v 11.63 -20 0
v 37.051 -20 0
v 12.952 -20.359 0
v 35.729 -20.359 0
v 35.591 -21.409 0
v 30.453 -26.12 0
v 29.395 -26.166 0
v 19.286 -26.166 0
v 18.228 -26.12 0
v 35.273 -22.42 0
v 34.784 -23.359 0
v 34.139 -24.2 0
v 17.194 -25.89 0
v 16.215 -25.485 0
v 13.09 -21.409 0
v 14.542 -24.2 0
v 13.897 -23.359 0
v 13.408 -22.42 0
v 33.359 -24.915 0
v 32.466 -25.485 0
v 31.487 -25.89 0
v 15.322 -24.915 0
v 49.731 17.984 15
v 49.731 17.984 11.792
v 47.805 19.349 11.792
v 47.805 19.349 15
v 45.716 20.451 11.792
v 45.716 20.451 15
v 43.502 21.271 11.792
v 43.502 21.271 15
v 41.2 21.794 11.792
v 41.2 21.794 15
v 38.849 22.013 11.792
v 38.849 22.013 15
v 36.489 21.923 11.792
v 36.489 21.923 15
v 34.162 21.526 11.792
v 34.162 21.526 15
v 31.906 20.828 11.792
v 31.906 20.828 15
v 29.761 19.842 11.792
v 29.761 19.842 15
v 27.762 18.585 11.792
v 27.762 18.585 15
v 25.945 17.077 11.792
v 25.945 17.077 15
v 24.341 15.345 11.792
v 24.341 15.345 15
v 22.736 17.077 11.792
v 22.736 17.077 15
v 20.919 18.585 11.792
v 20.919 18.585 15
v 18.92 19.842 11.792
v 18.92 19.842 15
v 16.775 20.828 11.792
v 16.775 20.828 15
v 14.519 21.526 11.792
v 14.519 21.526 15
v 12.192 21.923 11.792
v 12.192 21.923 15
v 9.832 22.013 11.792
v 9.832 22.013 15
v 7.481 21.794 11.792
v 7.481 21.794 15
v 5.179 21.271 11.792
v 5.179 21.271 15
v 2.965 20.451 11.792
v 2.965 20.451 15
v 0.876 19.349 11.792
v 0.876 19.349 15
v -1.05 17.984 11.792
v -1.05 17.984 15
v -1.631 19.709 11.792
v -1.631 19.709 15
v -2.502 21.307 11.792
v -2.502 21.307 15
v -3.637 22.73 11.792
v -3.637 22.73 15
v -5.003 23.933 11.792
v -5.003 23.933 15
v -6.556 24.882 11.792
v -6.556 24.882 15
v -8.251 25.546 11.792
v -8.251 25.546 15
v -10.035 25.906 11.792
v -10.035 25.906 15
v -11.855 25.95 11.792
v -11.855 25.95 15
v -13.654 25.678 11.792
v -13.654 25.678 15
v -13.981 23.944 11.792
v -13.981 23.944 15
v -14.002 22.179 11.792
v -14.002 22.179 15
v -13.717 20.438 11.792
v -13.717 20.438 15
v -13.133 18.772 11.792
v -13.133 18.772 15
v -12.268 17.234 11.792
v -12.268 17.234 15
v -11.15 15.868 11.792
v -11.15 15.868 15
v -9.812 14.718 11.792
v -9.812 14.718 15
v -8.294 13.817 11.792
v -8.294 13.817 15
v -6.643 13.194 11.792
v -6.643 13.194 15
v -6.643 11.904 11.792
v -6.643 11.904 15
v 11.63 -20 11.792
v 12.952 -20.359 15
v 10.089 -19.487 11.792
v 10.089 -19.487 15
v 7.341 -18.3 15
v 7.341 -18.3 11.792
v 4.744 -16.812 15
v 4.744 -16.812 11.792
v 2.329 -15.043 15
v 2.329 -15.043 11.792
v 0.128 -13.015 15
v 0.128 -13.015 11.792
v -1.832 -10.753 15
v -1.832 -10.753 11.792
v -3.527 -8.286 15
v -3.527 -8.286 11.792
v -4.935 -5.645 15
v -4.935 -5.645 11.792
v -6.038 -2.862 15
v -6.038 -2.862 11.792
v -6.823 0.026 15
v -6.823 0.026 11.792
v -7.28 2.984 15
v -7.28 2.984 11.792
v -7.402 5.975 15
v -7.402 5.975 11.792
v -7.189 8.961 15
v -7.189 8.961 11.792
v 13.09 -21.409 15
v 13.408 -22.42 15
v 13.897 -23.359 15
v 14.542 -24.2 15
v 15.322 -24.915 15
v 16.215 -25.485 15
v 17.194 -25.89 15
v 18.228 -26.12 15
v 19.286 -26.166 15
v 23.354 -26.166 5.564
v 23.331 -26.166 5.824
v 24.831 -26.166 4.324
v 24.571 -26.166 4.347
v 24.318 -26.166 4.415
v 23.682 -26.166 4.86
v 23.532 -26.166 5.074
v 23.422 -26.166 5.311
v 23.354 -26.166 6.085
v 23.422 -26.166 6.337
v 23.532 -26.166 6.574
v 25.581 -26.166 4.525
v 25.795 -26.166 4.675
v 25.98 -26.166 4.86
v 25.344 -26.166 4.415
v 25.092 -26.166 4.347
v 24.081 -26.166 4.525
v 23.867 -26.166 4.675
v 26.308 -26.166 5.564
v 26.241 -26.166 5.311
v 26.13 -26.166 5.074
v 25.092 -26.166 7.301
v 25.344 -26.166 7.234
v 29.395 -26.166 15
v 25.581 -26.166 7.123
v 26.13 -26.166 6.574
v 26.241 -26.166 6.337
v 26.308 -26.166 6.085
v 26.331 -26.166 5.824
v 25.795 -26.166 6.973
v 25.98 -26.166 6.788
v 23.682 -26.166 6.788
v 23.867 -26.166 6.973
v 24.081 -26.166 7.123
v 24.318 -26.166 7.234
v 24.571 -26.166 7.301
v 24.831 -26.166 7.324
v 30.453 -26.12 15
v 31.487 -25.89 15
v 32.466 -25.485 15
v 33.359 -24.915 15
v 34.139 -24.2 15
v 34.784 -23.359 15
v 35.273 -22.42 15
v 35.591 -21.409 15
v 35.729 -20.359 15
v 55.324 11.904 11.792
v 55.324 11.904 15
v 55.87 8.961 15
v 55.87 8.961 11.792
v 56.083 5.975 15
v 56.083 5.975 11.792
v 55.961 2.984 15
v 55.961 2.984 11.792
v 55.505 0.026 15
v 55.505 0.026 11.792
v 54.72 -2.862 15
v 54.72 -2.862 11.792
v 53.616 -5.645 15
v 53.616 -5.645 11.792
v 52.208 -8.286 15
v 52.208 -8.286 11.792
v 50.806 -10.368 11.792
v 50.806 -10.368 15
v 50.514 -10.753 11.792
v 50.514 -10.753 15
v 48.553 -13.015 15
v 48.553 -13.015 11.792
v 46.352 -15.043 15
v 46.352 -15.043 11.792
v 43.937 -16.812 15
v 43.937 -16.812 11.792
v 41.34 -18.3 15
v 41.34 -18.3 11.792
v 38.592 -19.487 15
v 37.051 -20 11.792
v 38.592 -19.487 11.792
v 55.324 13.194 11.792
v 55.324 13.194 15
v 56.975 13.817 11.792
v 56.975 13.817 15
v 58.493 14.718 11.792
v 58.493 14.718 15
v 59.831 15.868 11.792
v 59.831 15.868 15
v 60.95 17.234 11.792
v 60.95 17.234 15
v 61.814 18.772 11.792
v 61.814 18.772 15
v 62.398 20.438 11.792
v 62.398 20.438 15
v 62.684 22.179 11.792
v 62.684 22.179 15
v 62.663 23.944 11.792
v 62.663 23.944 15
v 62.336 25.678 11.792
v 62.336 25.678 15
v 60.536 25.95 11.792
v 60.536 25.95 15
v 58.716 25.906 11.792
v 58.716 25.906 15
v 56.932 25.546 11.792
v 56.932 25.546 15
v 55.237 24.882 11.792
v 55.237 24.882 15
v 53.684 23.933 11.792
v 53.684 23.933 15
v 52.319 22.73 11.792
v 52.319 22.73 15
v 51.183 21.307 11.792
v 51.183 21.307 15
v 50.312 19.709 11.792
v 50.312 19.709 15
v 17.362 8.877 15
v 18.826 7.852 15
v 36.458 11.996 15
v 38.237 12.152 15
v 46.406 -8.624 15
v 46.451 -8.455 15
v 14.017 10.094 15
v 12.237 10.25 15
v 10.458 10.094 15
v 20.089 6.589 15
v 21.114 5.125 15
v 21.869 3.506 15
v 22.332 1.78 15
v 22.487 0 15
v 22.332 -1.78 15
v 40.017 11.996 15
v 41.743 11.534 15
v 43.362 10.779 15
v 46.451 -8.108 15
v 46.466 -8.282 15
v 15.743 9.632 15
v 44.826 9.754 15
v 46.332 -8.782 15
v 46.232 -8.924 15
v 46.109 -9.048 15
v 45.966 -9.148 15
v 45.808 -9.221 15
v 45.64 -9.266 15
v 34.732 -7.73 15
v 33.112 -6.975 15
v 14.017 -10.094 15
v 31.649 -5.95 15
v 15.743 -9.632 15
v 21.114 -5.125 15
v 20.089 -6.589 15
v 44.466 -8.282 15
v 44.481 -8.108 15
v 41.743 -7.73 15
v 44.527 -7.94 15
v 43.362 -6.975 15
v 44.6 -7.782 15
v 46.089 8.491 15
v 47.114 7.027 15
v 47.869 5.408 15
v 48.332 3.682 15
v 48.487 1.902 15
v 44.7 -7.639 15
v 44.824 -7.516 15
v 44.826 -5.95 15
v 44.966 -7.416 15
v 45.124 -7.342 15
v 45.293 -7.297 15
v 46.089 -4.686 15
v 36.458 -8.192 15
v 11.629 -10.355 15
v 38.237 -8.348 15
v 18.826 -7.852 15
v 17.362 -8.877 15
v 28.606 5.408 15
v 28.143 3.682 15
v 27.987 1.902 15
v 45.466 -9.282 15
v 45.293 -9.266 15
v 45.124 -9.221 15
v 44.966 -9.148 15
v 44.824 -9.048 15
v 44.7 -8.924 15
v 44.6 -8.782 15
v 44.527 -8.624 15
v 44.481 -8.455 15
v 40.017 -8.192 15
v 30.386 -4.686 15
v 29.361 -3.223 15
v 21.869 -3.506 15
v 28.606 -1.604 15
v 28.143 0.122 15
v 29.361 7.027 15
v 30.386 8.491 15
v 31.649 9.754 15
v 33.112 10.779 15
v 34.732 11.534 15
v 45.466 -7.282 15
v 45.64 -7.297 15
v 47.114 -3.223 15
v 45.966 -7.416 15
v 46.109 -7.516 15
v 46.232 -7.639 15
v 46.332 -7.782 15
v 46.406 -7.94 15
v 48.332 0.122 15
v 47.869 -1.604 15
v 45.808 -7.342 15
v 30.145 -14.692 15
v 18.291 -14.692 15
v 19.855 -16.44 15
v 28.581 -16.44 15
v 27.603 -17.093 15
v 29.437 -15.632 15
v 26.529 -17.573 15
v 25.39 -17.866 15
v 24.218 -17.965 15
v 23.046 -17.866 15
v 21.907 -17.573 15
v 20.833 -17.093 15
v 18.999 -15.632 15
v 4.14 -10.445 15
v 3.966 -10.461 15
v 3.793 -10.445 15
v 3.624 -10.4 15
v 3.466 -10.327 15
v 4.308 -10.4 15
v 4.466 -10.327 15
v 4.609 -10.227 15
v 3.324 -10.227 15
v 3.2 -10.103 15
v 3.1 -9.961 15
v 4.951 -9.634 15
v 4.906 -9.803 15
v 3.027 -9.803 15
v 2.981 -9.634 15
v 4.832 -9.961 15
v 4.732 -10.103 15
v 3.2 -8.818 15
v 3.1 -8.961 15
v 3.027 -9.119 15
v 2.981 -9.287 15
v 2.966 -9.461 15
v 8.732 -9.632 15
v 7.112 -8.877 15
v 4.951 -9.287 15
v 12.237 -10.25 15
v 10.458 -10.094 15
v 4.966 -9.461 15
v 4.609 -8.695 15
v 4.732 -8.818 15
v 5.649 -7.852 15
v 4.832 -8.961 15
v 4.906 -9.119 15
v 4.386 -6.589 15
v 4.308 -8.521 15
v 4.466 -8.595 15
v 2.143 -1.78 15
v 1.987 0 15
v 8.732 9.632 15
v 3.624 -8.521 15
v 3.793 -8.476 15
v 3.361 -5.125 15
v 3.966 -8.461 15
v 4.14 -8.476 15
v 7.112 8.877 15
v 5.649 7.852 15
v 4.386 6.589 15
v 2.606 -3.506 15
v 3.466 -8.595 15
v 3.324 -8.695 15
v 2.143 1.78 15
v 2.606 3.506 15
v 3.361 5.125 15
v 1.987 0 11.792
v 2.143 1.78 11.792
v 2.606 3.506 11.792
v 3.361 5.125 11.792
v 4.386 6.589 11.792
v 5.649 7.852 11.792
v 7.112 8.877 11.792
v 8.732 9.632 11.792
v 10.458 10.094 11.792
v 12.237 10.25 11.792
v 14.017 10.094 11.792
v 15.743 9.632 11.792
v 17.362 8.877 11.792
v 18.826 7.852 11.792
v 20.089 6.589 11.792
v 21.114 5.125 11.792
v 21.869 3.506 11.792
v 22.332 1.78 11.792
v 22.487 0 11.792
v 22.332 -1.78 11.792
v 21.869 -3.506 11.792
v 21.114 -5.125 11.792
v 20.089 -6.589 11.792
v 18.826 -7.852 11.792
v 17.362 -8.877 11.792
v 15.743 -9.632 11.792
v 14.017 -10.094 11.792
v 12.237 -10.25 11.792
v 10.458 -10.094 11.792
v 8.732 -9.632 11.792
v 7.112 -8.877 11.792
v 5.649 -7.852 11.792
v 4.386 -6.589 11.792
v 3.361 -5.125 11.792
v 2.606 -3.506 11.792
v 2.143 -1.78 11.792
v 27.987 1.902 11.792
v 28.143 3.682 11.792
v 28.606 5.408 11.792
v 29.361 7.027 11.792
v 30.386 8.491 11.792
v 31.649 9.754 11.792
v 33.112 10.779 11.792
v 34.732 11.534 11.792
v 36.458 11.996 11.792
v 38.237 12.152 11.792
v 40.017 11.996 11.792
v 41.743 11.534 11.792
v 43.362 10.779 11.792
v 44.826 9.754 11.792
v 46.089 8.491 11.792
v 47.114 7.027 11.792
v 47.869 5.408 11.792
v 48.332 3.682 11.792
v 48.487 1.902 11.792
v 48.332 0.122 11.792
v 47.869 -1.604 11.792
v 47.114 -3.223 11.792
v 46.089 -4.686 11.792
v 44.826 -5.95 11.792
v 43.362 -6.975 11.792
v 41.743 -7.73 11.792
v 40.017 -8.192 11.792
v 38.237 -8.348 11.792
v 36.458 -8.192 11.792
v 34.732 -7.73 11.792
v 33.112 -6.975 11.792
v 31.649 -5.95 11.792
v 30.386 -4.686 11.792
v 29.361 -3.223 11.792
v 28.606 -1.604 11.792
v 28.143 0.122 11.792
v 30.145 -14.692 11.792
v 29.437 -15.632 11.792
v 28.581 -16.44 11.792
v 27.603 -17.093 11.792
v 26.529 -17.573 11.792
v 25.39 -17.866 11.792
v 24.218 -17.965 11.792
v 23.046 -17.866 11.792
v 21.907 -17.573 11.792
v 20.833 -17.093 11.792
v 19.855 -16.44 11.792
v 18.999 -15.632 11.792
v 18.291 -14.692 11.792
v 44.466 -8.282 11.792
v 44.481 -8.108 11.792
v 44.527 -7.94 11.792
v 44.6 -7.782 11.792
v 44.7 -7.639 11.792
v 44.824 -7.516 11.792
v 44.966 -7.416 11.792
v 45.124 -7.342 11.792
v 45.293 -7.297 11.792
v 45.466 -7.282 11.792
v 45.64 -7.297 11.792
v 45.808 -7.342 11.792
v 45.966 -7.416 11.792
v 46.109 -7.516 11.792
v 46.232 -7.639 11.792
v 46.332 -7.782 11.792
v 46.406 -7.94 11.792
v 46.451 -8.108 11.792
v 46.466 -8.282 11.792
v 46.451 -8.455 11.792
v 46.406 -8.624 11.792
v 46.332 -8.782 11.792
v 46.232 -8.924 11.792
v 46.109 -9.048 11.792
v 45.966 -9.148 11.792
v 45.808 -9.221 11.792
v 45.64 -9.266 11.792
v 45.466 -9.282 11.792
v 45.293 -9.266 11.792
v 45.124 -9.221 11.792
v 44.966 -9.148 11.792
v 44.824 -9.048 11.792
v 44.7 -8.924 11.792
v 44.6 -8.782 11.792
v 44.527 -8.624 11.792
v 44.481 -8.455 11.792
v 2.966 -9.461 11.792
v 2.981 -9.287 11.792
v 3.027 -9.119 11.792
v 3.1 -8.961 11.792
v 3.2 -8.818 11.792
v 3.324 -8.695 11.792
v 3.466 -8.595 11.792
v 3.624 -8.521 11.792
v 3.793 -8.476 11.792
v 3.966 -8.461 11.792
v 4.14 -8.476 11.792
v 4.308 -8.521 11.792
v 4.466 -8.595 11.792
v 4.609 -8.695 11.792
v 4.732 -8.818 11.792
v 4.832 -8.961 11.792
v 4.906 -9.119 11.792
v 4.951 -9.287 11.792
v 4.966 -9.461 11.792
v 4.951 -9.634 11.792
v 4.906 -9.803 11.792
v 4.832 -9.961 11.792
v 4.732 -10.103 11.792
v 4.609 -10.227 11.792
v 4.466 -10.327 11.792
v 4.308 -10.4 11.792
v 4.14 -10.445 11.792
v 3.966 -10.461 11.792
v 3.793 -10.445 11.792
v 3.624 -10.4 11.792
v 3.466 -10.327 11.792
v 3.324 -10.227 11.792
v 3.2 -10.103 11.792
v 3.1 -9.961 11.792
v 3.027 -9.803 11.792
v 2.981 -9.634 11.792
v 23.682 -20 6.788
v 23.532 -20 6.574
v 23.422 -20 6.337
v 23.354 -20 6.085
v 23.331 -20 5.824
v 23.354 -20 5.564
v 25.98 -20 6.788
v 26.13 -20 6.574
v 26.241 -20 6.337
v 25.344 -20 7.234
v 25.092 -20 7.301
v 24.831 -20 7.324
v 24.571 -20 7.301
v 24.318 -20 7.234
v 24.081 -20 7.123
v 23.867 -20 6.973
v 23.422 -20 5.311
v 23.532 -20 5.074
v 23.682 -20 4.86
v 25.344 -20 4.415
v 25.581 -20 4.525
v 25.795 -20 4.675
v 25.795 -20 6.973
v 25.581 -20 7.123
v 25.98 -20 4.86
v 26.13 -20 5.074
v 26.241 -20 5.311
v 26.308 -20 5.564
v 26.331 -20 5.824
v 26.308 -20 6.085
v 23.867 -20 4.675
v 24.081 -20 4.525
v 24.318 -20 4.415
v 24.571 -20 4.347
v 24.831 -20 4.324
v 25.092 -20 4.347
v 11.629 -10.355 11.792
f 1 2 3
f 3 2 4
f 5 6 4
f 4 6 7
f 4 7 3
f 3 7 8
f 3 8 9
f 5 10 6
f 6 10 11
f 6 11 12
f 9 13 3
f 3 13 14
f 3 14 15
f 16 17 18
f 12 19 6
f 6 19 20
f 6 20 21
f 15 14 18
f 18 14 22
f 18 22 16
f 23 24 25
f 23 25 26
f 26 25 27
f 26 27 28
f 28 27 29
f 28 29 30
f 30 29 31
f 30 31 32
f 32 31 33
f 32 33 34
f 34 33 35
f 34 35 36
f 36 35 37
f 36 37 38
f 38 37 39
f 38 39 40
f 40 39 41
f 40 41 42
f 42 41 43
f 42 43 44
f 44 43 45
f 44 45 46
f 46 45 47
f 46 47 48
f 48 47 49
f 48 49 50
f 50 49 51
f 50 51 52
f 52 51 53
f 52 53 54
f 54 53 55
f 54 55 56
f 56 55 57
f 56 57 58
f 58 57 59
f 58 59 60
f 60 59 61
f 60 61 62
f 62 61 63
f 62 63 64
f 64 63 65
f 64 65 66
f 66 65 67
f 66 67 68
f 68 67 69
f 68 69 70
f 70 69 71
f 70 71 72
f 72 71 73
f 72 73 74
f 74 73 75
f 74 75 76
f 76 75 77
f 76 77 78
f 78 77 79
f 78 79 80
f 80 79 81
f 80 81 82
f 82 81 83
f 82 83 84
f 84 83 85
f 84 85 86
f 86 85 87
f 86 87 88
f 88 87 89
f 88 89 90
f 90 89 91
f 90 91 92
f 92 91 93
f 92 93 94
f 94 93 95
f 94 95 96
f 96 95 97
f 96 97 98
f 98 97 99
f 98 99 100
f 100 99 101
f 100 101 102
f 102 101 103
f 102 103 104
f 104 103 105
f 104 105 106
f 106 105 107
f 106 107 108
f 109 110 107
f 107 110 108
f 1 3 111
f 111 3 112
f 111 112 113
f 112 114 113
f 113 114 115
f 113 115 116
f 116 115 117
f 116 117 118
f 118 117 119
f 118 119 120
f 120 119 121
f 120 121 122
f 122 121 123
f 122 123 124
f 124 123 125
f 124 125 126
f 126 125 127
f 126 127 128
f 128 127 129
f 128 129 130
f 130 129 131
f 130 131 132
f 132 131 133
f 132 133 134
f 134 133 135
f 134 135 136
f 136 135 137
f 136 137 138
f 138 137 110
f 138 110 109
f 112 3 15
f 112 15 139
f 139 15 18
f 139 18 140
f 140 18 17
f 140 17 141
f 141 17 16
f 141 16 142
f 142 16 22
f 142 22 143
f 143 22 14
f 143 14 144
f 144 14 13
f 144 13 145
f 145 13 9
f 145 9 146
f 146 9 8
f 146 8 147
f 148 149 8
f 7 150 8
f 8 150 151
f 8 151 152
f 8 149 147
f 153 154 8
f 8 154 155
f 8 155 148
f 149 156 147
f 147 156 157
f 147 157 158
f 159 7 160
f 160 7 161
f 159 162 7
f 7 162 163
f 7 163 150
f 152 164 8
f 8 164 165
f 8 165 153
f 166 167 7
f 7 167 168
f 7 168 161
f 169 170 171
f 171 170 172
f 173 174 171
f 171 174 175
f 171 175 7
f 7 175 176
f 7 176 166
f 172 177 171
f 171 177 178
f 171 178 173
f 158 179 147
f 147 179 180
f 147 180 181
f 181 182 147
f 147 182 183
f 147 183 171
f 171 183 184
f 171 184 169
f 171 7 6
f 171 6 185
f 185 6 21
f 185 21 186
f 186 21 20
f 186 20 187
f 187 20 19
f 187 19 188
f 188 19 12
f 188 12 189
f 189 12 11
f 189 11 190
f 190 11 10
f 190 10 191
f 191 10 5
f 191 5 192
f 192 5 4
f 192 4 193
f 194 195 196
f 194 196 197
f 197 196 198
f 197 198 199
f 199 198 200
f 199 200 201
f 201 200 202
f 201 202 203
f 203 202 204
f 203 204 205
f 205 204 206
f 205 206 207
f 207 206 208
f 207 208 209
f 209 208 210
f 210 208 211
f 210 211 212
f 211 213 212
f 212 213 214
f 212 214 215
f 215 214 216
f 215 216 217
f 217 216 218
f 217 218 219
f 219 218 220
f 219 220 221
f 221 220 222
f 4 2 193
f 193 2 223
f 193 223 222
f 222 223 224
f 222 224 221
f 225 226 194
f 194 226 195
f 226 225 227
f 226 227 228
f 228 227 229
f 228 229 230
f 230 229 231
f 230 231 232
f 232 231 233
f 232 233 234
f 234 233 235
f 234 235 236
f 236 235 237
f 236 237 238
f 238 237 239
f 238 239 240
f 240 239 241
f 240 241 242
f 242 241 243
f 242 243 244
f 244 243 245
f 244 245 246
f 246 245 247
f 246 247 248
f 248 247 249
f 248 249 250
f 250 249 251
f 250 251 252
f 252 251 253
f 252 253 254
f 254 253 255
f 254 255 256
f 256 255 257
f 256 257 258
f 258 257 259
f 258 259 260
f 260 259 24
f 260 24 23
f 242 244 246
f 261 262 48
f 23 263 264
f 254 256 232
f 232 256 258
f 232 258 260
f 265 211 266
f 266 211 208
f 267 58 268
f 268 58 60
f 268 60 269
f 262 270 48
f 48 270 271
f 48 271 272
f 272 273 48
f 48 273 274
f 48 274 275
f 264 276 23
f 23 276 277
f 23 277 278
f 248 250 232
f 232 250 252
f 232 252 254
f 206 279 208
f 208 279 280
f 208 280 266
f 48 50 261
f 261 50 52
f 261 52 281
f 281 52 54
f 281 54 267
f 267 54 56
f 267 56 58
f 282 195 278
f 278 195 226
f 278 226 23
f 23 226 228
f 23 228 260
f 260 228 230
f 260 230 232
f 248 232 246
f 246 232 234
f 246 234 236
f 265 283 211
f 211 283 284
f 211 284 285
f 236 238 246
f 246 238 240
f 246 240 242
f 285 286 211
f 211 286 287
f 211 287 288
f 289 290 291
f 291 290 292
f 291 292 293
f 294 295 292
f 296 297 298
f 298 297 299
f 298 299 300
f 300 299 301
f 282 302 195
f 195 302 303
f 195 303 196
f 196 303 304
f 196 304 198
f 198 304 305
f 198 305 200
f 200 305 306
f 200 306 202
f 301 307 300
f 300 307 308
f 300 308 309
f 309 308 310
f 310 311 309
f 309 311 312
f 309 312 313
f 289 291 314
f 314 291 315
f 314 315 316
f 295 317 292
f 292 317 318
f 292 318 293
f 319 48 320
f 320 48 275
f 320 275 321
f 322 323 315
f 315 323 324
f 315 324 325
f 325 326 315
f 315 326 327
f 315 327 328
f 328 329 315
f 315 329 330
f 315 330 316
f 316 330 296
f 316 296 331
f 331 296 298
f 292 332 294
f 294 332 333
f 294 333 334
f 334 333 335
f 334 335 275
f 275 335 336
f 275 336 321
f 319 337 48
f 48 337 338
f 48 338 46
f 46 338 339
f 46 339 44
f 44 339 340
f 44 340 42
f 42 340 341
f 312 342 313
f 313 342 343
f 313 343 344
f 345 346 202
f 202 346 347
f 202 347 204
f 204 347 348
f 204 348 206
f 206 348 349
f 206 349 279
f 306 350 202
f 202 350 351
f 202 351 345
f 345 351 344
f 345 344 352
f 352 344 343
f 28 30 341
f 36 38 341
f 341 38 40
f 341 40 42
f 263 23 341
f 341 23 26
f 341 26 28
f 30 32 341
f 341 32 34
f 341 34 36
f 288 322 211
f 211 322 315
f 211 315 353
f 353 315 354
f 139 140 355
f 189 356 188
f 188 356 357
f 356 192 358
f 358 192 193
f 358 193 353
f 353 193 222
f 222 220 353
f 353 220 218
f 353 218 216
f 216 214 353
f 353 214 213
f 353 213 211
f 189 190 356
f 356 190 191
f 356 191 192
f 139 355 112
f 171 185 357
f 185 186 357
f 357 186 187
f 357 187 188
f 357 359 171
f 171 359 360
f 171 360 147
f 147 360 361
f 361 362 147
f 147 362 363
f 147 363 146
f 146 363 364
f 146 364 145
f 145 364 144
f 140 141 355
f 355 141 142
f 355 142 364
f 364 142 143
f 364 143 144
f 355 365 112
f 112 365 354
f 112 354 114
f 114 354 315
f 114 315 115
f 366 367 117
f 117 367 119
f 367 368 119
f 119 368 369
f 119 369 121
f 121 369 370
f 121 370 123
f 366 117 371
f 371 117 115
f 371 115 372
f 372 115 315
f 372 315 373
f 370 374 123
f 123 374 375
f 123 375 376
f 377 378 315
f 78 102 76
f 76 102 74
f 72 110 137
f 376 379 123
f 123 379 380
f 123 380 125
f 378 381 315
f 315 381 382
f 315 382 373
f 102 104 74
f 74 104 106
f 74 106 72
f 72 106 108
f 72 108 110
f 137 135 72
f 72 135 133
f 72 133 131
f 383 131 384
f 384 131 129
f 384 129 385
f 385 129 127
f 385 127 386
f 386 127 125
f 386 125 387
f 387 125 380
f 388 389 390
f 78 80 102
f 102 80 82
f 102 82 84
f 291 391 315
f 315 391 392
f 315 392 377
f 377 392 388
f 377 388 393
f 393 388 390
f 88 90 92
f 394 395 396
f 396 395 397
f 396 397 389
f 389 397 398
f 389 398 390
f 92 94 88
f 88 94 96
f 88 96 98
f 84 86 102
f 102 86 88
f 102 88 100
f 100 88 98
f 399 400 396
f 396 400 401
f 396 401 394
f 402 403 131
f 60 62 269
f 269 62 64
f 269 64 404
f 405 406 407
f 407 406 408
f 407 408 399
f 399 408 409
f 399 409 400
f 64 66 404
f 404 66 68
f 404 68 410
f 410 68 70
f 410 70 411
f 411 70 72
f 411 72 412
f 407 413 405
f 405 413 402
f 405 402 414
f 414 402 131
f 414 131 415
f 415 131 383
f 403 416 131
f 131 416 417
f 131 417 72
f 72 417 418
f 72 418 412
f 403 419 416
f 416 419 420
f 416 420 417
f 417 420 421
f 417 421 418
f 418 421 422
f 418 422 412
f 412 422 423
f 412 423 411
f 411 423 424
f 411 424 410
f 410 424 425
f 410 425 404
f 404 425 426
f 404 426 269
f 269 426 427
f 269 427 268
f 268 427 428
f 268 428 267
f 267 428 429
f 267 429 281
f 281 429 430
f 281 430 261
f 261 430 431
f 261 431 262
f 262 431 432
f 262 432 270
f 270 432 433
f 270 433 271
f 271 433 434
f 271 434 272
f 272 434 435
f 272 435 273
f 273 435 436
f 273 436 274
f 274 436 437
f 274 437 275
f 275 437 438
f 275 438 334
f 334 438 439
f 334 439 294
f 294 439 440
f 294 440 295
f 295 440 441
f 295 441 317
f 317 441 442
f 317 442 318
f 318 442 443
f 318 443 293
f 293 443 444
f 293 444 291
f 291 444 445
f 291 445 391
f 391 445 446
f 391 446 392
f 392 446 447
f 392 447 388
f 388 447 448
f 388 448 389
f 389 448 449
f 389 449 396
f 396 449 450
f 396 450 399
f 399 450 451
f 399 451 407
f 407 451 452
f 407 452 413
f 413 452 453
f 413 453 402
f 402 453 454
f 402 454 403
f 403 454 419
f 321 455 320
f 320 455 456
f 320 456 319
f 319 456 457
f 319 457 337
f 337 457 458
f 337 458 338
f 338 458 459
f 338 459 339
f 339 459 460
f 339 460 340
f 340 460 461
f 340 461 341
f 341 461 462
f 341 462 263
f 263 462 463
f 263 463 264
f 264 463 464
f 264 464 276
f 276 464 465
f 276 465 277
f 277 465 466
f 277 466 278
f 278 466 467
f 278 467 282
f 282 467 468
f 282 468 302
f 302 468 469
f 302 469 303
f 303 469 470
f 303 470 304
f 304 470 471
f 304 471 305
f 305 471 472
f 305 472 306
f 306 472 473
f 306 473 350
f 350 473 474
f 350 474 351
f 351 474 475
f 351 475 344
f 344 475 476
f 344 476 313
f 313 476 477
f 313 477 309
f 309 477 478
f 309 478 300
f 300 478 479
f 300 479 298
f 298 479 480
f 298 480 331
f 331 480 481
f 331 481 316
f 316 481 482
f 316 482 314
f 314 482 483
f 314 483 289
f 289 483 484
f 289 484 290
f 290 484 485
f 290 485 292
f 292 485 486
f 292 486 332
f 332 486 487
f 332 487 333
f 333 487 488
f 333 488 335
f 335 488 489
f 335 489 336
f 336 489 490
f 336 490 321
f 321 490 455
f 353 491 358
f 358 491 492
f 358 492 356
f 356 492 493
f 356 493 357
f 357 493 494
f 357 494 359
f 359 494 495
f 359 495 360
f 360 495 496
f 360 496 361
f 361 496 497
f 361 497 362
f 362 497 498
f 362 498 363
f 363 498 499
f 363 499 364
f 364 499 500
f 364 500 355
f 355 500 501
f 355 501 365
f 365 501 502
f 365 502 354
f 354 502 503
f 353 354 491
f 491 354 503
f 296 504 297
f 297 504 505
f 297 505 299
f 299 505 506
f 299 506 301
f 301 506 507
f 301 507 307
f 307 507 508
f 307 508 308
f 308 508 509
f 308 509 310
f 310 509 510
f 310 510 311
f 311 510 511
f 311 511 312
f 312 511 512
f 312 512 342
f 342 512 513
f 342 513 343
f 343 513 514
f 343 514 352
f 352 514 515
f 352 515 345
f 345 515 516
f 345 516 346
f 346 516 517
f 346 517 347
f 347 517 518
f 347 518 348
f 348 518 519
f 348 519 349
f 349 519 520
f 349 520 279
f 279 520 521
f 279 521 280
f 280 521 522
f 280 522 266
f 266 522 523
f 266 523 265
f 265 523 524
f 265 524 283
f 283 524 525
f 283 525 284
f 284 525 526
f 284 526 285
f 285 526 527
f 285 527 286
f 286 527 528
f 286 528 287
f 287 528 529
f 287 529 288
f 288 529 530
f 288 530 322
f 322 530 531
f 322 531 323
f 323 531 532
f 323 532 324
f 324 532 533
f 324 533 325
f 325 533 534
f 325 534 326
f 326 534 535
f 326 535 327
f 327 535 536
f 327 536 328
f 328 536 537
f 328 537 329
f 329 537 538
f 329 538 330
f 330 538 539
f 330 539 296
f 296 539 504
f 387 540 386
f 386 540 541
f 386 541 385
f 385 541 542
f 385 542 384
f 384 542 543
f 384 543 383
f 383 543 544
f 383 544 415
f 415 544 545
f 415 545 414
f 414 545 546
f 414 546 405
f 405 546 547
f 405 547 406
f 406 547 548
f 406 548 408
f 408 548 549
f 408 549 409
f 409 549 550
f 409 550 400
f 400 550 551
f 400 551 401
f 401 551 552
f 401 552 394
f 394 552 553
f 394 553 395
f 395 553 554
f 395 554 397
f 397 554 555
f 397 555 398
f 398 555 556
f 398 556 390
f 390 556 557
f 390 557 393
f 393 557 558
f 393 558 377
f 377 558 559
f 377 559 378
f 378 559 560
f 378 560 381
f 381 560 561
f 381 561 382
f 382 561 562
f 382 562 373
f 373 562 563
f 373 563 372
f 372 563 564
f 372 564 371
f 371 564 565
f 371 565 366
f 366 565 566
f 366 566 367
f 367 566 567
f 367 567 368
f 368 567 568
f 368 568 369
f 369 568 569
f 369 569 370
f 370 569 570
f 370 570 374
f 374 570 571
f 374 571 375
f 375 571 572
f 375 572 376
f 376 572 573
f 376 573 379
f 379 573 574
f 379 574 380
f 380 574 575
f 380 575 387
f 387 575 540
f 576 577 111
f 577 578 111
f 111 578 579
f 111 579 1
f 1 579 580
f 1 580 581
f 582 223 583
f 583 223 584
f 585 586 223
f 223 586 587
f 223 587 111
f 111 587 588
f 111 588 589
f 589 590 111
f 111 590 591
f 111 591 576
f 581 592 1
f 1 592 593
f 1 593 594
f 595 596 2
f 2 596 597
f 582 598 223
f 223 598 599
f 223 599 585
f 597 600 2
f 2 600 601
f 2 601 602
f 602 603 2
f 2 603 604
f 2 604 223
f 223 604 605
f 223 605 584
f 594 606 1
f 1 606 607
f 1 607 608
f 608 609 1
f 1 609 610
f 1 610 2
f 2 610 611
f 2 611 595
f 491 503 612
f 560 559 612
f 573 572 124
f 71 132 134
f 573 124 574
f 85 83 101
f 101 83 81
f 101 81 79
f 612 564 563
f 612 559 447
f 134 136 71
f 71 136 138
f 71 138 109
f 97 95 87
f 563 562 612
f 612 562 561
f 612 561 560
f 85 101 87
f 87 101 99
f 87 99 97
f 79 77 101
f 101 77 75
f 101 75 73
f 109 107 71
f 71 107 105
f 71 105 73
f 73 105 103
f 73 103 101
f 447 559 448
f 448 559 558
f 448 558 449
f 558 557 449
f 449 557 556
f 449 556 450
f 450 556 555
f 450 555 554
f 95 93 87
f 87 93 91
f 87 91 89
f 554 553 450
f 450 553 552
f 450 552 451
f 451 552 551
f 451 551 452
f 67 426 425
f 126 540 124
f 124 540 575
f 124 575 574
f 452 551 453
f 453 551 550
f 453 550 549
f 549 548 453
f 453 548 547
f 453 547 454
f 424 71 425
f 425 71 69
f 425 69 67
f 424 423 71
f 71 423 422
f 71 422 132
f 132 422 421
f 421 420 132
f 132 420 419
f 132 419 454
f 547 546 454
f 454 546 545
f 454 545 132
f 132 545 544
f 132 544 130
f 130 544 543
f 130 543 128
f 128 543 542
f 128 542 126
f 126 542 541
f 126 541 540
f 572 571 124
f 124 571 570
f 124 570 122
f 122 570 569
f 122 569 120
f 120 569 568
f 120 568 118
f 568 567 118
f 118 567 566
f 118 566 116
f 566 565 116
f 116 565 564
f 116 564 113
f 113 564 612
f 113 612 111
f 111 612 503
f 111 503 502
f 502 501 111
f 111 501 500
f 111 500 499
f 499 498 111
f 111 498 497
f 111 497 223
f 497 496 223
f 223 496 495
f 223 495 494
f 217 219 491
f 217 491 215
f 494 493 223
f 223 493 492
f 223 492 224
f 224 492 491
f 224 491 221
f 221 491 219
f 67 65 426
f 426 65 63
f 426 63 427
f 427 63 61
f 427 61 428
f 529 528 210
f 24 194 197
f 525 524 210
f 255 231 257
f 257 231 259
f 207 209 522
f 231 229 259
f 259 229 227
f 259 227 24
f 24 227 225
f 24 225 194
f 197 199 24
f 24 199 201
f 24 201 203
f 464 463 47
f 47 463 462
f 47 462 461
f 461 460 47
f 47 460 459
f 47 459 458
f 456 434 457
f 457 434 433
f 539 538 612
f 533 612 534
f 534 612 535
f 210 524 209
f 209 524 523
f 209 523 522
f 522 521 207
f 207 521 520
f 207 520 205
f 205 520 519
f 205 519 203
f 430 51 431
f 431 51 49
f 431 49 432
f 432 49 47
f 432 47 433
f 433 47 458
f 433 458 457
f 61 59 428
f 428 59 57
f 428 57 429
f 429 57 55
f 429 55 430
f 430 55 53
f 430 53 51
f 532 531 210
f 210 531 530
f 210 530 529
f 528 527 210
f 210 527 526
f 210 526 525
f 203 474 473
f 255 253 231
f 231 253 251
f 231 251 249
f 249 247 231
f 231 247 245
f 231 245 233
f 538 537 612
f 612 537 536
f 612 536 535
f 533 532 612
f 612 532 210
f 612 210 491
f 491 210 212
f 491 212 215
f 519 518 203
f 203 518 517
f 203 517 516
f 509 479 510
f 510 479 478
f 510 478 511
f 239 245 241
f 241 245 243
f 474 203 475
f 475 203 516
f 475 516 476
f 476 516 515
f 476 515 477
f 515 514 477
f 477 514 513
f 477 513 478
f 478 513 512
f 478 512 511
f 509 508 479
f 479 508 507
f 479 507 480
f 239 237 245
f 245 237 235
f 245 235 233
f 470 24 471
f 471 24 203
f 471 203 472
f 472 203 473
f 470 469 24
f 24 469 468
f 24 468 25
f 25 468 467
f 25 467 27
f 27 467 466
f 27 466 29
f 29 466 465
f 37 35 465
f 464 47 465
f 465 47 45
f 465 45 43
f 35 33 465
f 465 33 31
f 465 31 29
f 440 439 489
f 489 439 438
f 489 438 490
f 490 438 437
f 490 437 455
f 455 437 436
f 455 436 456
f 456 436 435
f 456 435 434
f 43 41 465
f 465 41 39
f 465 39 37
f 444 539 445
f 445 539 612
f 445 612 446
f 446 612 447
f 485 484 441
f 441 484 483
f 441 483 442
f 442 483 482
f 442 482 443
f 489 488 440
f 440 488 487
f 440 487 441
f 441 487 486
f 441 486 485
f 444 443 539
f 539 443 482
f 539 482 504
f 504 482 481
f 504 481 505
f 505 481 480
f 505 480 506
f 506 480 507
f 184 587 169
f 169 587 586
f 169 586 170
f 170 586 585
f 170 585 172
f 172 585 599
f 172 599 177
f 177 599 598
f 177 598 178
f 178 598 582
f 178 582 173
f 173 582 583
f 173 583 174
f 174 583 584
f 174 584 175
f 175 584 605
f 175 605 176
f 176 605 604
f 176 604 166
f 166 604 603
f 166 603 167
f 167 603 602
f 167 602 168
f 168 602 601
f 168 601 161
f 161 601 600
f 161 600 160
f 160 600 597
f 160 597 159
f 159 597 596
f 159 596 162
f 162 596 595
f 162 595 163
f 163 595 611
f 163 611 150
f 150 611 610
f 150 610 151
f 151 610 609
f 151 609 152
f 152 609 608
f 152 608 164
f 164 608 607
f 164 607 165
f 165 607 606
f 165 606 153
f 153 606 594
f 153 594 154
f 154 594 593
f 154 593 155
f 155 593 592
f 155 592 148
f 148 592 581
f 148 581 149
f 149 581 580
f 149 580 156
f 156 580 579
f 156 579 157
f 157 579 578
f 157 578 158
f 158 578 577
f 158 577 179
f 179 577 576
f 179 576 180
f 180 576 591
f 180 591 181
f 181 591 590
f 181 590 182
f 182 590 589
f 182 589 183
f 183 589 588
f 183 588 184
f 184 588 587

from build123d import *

# Parameters (mm, degrees)
BOSS_EXTRUDE2_DEPTH     = 15
SKETCH4_R               = 10.25
CUT_EXTRUDE1_DEPTH      = 39
SKETCH5_R               = 1
CUT_EXTRUDE2_DEPTH      = 46
CUT_EXTRUDE4_DEPTH      = 30
CUT_EXTRUDE4_DEPTH_BACK = 20
SKETCH8_W               = 87.305200023
SKETCH8_H               = 11.791688203
SKETCH9_R               = 1.5
CUT_EXTRUDE5_DEPTH      = 45


with BuildPart() as part:
    # Sketch2 → Boss-Extrude2 (new body)
    with BuildSketch(Plane.XY):
        with BuildLine():
            Line((29.39514737, -26.166473039), (19.28603361, -26.166473039))
            ThreePointArc((19.28603361, -26.166473039), (14.916401147, -24.5745939), (12.952232935, -20.359168619))
            ThreePointArc((12.952232935, -20.359168619), (-3.527212702, -8.286066454), (-6.642968051, 11.903633717))
            Line((-6.642968051, 11.903633717), (-6.642968051, 13.194145811))
            ThreePointArc((-6.642968051, 13.194145811), (-12.734188373, 17.984078311), (-13.654337816, 25.678215258))
            ThreePointArc((-13.654337816, 25.678215258), (-5.75878812, 24.441537952), (-1.050254298, 17.984078311))
            ThreePointArc((-1.050254298, 17.984078311), (12.191739255, 21.923154941), (24.34059049, 15.3449993))
            ThreePointArc((24.34059049, 15.3449993), (36.489441725, 21.923154941), (49.731435279, 17.984078311))
            ThreePointArc((49.731435279, 17.984078311), (54.439969101, 24.441537952), (62.335518797, 25.678215258))
            ThreePointArc((62.335518797, 25.678215258), (61.415369354, 17.984078311), (55.324149032, 13.194145811))
            Line((55.324149032, 13.194145811), (55.324149032, 11.903633717))
            ThreePointArc((55.324149032, 11.903633717), (52.208393682, -8.286066454), (35.728948045, -20.359168619))
            ThreePointArc((35.728948045, -20.359168619), (33.764779834, -24.5745939), (29.39514737, -26.166473039))
        make_face()
    extrude(amount=BOSS_EXTRUDE2_DEPTH)

    # Sketch4 → Cut-Extrude1 (cut)
    with BuildSketch(Plane.XY):
        with Locations((12.237485625, 0)):
            Circle(SKETCH4_R)
        with Locations((38.237485625, 1.902154712)):
            Circle(SKETCH4_R)
        with BuildLine():
            Line((18.291353785, -14.692373008), (30.14458787, -14.692373008))
            ThreePointArc((30.14458787, -14.692373008), (24.217970827, -17.965213498), (18.291353785, -14.692373008))
        make_face()
    extrude(amount=CUT_EXTRUDE1_DEPTH, mode=Mode.SUBTRACT)

    # Sketch5 → Cut-Extrude2 (cut)
    with BuildSketch(Plane.XY):
        with Locations((3.966291552, -9.460600721)):
            Circle(SKETCH5_R)
        with Locations((45.466291552, -8.281636769)):
            Circle(SKETCH5_R)
    extrude(amount=CUT_EXTRUDE2_DEPTH, mode=Mode.SUBTRACT)

    # Sketch8 → Cut-Extrude4 (cut, two sides: drawn at the far end of the back side and taken through both)
    with BuildSketch(Plane(origin=(0, 0, 0), x_dir=(1, 0, 0), z_dir=(0, 1, 0)).offset(-CUT_EXTRUDE4_DEPTH_BACK)):
        with Locations((24.422336933, -5.895844102)):
            Rectangle(SKETCH8_W, SKETCH8_H)
    extrude(amount=CUT_EXTRUDE4_DEPTH + CUT_EXTRUDE4_DEPTH_BACK, mode=Mode.SUBTRACT)

    # Sketch9 → Cut-Extrude5 (cut)
    with BuildSketch(Plane(origin=(0, 0, 0), x_dir=(1, 0, 0), z_dir=(0, 1, 0))):
        with Locations(Location((24.831069142, -5.82419794, 0), (0, 0, 270))):
            Circle(SKETCH9_R)
    extrude(amount=-CUT_EXTRUDE5_DEPTH, mode=Mode.SUBTRACT)


solid = part.part
